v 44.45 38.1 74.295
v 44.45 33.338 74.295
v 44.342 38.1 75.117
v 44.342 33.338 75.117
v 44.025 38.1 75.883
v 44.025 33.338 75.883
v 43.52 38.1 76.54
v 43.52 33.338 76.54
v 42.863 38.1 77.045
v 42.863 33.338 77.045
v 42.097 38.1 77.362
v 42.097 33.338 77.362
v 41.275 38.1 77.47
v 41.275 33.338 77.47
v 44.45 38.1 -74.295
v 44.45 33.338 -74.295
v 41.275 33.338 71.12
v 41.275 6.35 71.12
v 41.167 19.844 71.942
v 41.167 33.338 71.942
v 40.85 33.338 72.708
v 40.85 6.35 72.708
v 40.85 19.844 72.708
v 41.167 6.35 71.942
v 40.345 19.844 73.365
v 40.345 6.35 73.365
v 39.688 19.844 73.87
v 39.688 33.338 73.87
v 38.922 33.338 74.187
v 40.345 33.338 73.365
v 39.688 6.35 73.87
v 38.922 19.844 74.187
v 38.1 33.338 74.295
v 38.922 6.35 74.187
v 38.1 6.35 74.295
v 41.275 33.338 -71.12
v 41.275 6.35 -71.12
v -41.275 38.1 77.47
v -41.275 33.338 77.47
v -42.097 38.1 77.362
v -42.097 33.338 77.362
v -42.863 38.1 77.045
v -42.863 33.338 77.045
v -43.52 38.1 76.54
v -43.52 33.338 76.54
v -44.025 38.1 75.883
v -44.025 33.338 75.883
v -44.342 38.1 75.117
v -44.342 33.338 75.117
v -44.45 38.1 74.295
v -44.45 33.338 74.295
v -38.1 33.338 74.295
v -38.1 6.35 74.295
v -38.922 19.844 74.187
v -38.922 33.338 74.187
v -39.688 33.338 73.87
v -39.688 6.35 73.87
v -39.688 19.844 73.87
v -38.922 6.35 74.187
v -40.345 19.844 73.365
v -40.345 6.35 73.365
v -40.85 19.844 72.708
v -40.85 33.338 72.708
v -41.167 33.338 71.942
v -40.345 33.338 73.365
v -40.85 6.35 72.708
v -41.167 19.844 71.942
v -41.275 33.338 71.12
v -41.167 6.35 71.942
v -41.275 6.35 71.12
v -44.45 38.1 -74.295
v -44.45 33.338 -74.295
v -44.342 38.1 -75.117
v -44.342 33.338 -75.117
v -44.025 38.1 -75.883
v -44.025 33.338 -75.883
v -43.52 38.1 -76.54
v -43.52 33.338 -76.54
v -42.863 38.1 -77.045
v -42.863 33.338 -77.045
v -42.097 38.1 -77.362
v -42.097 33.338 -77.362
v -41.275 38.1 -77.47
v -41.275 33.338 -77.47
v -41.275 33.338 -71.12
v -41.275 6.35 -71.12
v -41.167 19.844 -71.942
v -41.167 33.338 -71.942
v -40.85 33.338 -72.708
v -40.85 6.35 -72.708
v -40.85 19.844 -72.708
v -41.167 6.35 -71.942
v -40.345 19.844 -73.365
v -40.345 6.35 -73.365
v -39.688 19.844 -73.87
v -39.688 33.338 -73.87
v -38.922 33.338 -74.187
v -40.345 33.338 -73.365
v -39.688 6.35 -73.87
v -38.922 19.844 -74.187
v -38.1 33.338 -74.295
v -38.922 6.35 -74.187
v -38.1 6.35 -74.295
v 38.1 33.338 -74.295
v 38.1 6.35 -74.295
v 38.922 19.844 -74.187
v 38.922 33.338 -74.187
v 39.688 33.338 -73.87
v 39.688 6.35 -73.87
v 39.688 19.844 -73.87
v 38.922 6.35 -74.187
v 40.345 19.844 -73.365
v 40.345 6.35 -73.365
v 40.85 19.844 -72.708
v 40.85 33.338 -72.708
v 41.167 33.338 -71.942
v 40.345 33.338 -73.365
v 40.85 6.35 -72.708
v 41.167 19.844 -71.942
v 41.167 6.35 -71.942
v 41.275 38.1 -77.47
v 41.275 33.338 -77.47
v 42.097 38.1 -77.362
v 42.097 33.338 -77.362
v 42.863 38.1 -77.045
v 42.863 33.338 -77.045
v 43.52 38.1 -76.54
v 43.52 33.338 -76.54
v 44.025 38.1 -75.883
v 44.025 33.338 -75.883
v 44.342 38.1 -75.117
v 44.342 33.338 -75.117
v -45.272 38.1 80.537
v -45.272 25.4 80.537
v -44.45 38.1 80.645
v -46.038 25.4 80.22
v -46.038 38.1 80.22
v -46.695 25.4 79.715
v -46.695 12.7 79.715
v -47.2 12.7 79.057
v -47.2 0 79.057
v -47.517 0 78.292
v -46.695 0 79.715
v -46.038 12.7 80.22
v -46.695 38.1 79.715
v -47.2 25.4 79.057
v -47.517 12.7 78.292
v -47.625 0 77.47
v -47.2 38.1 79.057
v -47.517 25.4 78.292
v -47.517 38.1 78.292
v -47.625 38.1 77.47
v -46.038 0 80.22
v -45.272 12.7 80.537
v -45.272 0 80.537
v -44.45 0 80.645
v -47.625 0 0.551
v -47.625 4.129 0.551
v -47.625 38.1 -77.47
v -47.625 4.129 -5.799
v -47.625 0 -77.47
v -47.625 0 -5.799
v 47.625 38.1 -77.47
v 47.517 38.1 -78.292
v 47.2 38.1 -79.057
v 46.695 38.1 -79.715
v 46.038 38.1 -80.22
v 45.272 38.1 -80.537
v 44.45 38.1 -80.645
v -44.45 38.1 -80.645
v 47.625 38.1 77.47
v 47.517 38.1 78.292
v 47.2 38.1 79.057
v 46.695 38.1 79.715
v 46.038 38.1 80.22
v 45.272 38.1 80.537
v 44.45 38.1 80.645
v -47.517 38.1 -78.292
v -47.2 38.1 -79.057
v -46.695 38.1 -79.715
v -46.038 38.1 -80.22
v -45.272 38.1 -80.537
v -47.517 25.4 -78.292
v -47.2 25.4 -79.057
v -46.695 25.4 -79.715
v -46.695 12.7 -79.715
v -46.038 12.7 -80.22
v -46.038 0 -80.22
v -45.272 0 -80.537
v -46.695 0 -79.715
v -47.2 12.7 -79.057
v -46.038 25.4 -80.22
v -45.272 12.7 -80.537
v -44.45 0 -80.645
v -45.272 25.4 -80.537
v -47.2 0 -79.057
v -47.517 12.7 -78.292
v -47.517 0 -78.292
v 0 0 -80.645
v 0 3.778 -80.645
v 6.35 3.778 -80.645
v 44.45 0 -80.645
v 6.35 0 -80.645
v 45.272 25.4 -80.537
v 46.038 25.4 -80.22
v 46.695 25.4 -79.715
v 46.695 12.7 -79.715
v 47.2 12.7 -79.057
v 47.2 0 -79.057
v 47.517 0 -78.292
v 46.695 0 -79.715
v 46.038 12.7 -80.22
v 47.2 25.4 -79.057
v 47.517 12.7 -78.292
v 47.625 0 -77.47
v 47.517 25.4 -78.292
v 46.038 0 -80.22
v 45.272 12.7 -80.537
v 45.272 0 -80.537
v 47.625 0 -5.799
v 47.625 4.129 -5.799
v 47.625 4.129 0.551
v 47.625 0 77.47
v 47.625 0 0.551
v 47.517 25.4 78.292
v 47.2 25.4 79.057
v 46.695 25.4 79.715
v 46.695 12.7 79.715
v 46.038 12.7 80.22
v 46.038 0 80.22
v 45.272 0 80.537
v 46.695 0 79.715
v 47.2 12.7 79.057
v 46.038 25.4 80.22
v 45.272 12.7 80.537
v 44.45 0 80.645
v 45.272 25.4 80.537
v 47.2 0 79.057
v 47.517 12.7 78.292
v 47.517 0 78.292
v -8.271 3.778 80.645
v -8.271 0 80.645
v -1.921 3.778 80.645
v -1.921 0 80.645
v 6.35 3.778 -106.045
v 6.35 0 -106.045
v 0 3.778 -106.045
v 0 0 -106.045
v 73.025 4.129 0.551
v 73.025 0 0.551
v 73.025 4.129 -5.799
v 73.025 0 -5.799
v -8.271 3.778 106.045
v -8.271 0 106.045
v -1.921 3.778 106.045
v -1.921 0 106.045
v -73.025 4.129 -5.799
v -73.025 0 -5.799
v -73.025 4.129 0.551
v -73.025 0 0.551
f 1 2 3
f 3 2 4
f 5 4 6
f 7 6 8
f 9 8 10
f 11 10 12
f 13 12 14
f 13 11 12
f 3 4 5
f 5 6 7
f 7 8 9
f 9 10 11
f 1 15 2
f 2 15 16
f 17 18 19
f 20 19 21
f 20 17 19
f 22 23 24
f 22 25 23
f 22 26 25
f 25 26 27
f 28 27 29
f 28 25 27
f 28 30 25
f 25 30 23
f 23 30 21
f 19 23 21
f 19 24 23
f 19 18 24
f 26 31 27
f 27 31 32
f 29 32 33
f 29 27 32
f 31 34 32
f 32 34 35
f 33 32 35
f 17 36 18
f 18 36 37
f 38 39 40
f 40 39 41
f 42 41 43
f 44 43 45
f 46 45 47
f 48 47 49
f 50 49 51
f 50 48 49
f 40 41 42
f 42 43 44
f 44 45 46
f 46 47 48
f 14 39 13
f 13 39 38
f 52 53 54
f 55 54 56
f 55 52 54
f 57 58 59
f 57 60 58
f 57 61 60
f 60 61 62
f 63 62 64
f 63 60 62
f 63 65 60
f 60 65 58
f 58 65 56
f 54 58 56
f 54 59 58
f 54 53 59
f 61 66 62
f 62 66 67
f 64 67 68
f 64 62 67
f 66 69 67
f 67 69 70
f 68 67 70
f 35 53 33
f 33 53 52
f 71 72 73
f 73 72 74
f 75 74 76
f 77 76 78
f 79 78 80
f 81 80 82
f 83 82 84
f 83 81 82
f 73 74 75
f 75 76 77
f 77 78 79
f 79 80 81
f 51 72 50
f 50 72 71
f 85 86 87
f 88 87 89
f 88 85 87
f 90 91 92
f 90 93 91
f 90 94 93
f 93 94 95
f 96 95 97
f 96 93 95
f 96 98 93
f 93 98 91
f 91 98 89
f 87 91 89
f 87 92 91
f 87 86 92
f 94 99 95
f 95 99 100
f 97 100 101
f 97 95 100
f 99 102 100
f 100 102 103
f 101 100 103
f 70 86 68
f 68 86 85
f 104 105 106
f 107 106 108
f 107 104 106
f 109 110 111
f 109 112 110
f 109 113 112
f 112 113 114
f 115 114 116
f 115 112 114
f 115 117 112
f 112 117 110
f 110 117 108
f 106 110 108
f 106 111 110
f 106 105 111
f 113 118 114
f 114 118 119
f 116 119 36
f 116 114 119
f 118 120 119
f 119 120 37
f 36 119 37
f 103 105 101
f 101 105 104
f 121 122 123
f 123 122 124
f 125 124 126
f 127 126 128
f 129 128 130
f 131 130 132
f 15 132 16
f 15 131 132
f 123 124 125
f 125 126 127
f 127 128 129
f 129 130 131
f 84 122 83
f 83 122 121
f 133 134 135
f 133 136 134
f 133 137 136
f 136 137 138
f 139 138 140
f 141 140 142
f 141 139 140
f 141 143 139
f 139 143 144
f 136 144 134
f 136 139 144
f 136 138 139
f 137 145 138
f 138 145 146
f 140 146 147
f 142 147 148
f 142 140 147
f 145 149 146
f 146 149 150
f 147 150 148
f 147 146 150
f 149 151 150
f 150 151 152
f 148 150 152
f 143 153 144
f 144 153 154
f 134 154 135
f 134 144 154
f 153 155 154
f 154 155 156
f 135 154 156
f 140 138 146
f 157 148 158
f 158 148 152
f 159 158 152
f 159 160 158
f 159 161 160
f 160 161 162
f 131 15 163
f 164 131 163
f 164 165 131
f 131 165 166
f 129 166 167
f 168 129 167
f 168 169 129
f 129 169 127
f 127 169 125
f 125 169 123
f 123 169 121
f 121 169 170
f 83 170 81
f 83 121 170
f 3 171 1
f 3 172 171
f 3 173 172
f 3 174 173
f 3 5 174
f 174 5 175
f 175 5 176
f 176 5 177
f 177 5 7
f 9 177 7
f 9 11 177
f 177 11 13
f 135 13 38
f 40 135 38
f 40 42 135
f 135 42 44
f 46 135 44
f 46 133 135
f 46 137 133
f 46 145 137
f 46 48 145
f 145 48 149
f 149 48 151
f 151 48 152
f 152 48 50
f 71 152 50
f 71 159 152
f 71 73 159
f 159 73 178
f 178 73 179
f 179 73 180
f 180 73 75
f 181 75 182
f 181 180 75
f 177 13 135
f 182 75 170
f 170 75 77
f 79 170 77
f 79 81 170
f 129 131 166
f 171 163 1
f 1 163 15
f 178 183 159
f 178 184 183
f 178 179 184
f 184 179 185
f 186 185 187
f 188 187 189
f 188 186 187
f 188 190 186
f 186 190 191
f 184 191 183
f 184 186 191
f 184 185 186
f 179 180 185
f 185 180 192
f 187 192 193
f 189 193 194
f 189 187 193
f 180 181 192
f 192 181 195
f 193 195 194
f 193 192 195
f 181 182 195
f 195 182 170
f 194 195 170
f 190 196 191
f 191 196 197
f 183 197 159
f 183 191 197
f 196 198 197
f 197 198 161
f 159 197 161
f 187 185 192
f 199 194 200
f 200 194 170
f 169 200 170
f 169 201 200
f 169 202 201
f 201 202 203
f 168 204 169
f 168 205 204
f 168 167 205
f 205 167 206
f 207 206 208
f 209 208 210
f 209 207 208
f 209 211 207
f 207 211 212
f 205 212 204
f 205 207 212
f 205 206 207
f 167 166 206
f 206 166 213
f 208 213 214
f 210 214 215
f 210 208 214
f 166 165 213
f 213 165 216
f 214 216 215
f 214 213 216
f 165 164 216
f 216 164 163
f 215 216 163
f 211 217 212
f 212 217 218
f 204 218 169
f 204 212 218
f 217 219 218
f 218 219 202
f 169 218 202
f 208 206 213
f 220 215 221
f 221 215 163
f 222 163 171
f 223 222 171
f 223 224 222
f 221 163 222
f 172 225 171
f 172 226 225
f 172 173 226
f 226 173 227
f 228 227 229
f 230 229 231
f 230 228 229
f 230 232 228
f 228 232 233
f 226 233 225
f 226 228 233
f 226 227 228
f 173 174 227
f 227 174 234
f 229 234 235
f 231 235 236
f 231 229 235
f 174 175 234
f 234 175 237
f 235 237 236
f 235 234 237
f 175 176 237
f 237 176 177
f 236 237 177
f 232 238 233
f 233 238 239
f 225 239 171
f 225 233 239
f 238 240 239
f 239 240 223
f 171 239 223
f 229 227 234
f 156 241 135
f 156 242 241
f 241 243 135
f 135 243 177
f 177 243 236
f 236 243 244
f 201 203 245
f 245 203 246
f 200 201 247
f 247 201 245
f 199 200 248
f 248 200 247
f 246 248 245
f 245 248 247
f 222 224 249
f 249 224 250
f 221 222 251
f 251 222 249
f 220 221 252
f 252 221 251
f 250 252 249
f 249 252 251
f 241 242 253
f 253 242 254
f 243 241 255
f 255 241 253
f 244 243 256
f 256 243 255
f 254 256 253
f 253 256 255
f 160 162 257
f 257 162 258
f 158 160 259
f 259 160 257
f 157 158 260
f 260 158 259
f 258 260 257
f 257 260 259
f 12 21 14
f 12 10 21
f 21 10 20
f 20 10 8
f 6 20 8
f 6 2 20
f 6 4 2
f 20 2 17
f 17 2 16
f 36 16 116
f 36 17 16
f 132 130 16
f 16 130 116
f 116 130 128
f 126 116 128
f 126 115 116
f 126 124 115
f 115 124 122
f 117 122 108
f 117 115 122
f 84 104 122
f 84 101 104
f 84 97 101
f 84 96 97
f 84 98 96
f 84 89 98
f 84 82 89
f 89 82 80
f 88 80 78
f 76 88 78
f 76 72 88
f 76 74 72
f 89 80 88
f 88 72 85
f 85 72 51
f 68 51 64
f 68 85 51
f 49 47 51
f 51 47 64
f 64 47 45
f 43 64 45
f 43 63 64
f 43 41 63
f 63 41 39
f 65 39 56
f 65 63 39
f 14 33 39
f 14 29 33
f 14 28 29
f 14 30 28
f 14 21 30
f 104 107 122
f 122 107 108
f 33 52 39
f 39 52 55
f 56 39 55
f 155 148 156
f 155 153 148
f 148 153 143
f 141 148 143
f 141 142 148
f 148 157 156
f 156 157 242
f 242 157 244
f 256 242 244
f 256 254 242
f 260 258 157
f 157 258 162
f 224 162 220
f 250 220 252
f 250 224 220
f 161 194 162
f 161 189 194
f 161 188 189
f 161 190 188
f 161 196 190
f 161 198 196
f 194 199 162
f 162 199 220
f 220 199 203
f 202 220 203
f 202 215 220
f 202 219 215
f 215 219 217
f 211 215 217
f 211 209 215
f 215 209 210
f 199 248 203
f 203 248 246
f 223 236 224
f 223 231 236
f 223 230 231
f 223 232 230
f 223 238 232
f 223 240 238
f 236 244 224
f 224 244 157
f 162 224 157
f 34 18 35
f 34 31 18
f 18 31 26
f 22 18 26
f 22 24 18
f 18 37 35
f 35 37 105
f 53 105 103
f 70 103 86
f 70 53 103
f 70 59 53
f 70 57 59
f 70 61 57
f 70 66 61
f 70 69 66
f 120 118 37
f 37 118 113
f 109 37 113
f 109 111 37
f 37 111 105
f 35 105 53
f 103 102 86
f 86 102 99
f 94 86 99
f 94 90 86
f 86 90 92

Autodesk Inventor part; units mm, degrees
ref_plane "YZ Plane" through (0, 0, 0) normal (1, 0, 0) x (0, 1, 0)
ref_plane "XZ Plane" through (0, 0, 0) normal (0, 1, 0) x (-1, 0, 0)
ref_plane "XY Plane" through (0, 0, 0) normal (0, 0, 1) x (1, 0, 0)
sketch "Sketch2" plane through (0, 0, 0) normal (0, 1, 0) x (-1, 0, 0)
  line L0 (-47.625, 80.645) -> (47.625, 80.645)
  line L1 (47.625, 80.645) -> (47.625, -80.645)
  line L2 (47.625, -80.645) -> (-47.625, -80.645)
  line L3 (-47.625, -80.645) -> (-47.625, 80.645)
  line L4 (-47.625, 80.645) -> (47.625, -80.645) construction
  line L5 (47.625, 80.645) -> (-47.625, -80.645) construction
  point P0 (0, 0)
  dimension "d6" = 161.29
  dimension "d7" = 95.25
extrude "Extrusion2" add sketch "Sketch2" along normal blind 6.35
sketch "Sketch3" plane through (0, 6.35, 0) normal (0, 1, 0) x (1, 0, 0)
  line L0 (47.625, 80.645) -> (-47.625, 80.645) projected
  line L1 (47.625, -80.645) -> (-47.625, -80.645)
  line L2 (-47.625, -80.645) -> (-47.625, 80.645)
  line L3 (-47.625, 80.645) -> (47.625, 80.645)
  line L4 (47.625, 80.645) -> (47.625, -80.645)
  line L5 (47.625, -80.645) -> (-47.625, 80.645) construction
  line L6 (-47.625, -80.645) -> (47.625, 80.645) construction
  line L7 (41.275, -74.295) -> (-41.275, -74.295)
  line L8 (-41.275, -74.295) -> (-41.275, 74.295)
  line L9 (-41.275, 74.295) -> (41.275, 74.295)
  line L10 (41.275, 74.295) -> (41.275, -74.295)
  line L11 (41.275, -74.295) -> (-41.275, 74.295) construction
  line L12 (-41.275, -74.295) -> (41.275, 74.295) construction
  point P0 (0, 0)
  dimension "d10" = 148.59
  dimension "d11" = 82.55
extrude "Extrusion3" add sketch "Sketch3" along normal blind 31.75
sketch "Sketch6" plane through (0, 38.1, 0) normal (0, 1, 0) x (1, 0, 0)
  line L0 (44.45, -77.47) -> (-44.45, -77.47)
  line L1 (-44.45, -77.47) -> (-44.45, 77.47)
  line L2 (-44.45, 77.47) -> (44.45, 77.47)
  line L3 (44.45, 77.47) -> (44.45, -77.47)
  line L4 (44.45, -77.47) -> (-44.45, 77.47) construction
  line L5 (-44.45, -77.47) -> (44.45, 77.47) construction
  point P0 (0, 0)
  dimension "d29" = 154.94
  dimension "d30" = 88.9
extrude "Extrusion6" cut sketch "Sketch6" against normal blind 4.7625
sketch "Sketch9" plane through (-47.625, 0, -80.645) normal (-1, 0, 0) x (0, 0, 1)
  line L0 (161.29, 0) -> (0, 0) projected
  line L1 (74.8462, 0) -> (81.1962, 0)
  line L2 (81.1962, 0) -> (81.1962, 4.1295)
  line L3 (81.1962, 4.1295) -> (74.8462, 4.1295)
  line L4 (74.8462, 4.1295) -> (74.8462, 0)
  point P0 (80.645, 0)
  dimension "d57" = 6.35
extrude "Extrusion9" add sketch "Sketch9" along normal blind 25.4
sketch "Sketch10" plane through (-47.625, 0, 80.645) normal (0, 0, 1) x (1, 0, 0)
  line L0 (95.25, 0) -> (0, 0) projected
  line L1 (39.3541, 0) -> (45.7041, 0)
  line L2 (45.7041, 0) -> (45.7041, 3.778)
  line L3 (45.7041, 3.778) -> (39.3541, 3.778)
  line L4 (39.3541, 3.778) -> (39.3541, 0)
  point P0 (47.625, 0)
  dimension "d56" = 6.35
extrude "Extrusion10" add sketch "Sketch10" along normal blind 25.4
sketch "Sketch11" plane through (47.625, 0, 80.645) normal (1, 0, 0) x (0, 0, -1)
  line L0 (161.29, 0) -> (0, 0) projected
  line L1 (86.4438, 4.1295) -> (86.4438, 0) projected
  line L2 (80.0938, 0) -> (86.4438, 0)
  line L3 (86.4438, 0) -> (86.4438, 4.1295)
  line L4 (86.4438, 4.1295) -> (80.0938, 4.1295)
  line L5 (80.0938, 4.1295) -> (80.0938, 0)
  point P0 (80.645, 0)
  dimension "d55" = 6.35
extrude "Extrusion11" add sketch "Sketch11" along normal blind 25.4
sketch "Sketch12" plane through (47.625, 0, -80.645) normal (0, 0, -1) x (-1, 0, 0)
  line L0 (41.275, 0) -> (47.625, 0)
  line L1 (47.625, 0) -> (47.625, 3.778)
  line L2 (47.625, 3.778) -> (41.275, 3.778)
  line L3 (41.275, 3.778) -> (41.275, 0)
  dimension "d54" = 6.35
extrude "Extrusion12" add sketch "Sketch12" along normal blind 25.4
fillet "Fillet1" radius 3.175 12 edges at (47.625, 19.05, 80.645) (47.625, 19.05, -80.645) (-47.625, 19.05, -80.645) (-47.625, 19.05, 80.645) (44.45, 35.7187, -77.47) (41.275, 19.8437, -74.295) (-41.275, 19.8437, -74.295) (-44.45, 35.7187, -77.47) (-41.275, 19.8437, 74.295) (-44.45, 35.7187, 77.47) (41.275, 19.8437, 74.295) (44.45, 35.7187, 77.47)
properties part number "iceTubeClockBase"
